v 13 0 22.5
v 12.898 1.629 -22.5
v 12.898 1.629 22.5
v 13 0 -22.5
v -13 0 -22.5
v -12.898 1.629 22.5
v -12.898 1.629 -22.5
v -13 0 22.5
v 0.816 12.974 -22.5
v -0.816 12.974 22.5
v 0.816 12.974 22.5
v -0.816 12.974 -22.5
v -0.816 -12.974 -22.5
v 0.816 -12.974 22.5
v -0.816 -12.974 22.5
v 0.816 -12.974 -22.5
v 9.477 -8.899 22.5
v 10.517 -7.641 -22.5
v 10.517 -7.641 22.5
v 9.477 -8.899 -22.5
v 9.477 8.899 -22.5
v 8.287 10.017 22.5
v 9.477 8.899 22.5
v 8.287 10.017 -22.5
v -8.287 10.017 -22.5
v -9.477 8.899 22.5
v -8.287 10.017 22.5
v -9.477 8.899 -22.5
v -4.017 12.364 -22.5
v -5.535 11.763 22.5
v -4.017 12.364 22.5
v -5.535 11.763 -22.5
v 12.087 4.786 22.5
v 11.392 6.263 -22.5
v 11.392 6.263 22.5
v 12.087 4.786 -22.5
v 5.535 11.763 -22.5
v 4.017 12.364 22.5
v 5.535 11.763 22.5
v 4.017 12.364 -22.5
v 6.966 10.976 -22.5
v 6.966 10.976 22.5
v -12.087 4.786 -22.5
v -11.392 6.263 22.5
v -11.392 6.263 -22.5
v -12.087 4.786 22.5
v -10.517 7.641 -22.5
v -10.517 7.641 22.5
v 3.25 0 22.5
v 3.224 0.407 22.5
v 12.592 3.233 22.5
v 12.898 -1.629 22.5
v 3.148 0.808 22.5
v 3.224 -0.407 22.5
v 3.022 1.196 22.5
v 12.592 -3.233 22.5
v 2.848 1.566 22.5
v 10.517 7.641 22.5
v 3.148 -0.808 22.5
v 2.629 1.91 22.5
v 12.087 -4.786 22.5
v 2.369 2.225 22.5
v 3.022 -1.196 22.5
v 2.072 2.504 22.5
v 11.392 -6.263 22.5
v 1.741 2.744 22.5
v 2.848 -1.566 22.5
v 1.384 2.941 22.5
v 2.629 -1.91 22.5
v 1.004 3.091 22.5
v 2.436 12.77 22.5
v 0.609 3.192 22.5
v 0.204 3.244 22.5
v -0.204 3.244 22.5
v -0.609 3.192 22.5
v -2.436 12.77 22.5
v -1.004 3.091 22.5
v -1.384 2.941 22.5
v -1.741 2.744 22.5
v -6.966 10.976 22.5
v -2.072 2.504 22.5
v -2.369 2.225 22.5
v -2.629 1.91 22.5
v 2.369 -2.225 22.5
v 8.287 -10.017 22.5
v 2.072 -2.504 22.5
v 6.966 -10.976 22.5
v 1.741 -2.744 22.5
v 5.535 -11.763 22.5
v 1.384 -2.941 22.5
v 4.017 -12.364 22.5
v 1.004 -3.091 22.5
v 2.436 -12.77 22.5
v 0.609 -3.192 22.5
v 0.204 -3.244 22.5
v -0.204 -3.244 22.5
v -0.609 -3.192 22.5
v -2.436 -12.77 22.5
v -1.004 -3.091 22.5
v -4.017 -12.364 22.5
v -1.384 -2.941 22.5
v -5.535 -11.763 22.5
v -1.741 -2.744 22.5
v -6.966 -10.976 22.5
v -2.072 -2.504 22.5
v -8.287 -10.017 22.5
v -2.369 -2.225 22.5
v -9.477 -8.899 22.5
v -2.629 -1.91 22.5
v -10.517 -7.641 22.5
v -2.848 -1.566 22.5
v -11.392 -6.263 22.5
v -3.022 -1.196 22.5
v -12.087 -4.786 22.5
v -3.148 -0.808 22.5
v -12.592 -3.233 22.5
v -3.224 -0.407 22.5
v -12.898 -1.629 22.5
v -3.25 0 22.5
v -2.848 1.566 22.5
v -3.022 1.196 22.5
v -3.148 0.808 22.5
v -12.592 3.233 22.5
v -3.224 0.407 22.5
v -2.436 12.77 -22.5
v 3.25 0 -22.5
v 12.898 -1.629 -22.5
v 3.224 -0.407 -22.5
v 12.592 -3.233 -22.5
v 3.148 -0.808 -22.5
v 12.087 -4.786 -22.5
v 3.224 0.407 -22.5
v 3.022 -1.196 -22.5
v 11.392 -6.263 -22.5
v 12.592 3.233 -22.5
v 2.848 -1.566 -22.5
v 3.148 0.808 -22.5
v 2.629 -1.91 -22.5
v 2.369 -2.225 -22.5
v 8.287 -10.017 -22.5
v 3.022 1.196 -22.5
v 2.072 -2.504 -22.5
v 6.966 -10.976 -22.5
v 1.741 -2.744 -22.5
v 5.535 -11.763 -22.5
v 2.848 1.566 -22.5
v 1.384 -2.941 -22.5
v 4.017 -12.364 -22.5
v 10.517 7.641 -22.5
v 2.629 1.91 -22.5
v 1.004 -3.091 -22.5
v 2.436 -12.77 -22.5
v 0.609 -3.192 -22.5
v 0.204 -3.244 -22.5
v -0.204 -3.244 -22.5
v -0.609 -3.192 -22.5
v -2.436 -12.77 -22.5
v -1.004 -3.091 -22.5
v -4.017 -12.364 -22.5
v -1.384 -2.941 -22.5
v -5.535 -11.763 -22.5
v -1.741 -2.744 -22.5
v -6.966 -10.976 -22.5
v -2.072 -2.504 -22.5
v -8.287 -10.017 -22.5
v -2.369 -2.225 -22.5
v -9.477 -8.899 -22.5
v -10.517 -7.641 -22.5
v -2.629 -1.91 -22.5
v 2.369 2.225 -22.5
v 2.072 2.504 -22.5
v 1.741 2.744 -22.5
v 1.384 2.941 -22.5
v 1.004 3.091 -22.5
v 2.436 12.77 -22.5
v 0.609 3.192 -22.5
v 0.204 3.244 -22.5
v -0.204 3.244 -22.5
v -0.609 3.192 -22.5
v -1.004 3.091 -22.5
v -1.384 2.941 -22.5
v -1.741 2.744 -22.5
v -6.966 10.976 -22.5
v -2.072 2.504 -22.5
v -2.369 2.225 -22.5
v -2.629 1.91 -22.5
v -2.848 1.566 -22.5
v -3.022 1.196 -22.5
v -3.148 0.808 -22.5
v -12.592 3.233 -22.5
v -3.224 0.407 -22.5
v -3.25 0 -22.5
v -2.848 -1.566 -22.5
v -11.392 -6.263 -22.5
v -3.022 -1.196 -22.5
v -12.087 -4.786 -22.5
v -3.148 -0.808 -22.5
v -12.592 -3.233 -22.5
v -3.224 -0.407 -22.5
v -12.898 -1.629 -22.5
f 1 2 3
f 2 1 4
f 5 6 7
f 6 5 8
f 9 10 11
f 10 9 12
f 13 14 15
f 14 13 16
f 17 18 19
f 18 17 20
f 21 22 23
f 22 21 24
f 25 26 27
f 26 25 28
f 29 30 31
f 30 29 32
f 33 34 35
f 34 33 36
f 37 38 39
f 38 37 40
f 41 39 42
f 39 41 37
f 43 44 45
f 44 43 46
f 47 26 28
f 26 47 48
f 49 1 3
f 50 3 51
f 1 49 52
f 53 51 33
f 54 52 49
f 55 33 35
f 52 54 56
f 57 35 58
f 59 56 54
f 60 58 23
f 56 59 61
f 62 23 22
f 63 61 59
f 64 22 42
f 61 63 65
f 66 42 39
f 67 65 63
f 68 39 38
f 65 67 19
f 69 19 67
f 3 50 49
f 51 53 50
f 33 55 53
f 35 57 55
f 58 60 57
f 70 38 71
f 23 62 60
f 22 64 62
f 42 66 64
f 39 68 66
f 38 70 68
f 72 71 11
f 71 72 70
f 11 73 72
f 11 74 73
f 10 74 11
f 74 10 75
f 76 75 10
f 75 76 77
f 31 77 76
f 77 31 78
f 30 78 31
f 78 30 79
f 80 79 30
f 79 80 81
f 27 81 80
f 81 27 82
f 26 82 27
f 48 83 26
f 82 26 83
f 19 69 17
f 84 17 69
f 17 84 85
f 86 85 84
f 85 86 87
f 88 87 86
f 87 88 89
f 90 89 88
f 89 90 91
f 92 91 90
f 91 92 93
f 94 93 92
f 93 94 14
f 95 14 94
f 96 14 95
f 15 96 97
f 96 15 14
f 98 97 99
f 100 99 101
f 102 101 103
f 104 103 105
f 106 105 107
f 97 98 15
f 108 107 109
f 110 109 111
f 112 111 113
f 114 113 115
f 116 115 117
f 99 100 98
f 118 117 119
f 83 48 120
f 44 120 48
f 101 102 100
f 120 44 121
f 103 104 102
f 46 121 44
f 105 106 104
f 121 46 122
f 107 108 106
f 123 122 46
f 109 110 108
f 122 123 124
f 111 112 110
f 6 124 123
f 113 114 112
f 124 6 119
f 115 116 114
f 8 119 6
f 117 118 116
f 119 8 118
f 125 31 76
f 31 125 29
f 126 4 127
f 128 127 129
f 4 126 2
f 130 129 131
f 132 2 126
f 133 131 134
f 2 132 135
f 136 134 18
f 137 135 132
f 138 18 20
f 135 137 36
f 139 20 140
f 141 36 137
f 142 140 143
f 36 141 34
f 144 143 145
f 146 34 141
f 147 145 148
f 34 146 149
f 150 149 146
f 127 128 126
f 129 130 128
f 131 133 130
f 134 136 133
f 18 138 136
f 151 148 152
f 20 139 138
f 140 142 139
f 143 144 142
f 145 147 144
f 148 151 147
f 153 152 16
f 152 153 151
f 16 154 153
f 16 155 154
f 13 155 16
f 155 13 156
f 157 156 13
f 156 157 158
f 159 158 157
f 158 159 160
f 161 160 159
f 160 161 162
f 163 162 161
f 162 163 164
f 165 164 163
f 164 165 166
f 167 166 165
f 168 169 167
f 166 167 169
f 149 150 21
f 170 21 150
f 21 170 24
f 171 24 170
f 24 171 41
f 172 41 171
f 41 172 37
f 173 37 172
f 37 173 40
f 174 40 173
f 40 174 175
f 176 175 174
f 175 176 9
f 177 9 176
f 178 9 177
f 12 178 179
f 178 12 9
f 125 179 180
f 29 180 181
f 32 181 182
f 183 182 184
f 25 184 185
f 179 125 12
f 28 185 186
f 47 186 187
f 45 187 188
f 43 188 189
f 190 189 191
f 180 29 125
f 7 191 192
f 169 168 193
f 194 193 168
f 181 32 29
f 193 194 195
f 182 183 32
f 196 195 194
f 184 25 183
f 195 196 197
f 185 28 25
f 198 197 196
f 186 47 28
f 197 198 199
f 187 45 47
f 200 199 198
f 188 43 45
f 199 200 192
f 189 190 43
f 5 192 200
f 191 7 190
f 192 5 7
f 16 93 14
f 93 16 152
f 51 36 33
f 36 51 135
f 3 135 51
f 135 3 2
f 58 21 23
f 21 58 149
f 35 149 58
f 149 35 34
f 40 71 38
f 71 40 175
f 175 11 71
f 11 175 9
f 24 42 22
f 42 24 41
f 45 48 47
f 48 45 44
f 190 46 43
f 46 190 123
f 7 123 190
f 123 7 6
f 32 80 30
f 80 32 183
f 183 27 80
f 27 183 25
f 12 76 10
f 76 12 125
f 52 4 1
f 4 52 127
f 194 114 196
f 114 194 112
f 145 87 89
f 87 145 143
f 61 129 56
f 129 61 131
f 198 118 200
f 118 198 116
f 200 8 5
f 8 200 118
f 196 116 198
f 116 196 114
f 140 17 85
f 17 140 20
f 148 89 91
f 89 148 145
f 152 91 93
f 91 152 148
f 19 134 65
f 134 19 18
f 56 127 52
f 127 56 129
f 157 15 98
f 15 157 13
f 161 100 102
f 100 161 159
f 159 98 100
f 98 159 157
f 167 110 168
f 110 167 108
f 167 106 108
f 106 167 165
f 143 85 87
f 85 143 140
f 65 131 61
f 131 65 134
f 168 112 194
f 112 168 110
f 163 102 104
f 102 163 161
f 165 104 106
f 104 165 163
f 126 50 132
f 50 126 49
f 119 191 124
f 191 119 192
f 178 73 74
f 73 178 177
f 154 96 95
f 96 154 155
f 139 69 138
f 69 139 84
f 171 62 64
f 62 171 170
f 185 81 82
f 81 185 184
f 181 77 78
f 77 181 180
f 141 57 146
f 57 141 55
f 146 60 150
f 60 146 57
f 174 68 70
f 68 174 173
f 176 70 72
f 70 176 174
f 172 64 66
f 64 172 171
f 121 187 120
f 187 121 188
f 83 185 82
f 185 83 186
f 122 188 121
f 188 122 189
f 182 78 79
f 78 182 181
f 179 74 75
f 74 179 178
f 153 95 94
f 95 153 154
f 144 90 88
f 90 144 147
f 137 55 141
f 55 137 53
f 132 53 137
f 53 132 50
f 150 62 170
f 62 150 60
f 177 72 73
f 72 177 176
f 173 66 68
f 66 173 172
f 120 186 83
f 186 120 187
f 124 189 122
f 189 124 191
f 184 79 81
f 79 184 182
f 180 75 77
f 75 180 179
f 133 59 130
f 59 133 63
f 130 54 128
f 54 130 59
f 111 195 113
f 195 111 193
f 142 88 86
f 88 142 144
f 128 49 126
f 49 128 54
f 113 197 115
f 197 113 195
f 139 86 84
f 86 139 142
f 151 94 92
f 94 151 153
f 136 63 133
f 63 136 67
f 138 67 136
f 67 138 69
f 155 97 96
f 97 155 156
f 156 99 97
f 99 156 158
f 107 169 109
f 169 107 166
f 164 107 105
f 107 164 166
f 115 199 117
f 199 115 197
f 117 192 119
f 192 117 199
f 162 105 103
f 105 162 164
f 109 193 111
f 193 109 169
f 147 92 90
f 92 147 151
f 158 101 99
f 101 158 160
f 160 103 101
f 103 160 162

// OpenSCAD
$fn = 50;


difference() {
	union() {
		translate(v = [0, 0, -22.5000000000]) {
			cylinder(h = 45, r = 13.0000000000);
		}
	}
	union() {
		translate(v = [0, 0, -100.0000000000]) {
			cylinder(h = 200, r = 3.2500000000);
		}
	}
}
